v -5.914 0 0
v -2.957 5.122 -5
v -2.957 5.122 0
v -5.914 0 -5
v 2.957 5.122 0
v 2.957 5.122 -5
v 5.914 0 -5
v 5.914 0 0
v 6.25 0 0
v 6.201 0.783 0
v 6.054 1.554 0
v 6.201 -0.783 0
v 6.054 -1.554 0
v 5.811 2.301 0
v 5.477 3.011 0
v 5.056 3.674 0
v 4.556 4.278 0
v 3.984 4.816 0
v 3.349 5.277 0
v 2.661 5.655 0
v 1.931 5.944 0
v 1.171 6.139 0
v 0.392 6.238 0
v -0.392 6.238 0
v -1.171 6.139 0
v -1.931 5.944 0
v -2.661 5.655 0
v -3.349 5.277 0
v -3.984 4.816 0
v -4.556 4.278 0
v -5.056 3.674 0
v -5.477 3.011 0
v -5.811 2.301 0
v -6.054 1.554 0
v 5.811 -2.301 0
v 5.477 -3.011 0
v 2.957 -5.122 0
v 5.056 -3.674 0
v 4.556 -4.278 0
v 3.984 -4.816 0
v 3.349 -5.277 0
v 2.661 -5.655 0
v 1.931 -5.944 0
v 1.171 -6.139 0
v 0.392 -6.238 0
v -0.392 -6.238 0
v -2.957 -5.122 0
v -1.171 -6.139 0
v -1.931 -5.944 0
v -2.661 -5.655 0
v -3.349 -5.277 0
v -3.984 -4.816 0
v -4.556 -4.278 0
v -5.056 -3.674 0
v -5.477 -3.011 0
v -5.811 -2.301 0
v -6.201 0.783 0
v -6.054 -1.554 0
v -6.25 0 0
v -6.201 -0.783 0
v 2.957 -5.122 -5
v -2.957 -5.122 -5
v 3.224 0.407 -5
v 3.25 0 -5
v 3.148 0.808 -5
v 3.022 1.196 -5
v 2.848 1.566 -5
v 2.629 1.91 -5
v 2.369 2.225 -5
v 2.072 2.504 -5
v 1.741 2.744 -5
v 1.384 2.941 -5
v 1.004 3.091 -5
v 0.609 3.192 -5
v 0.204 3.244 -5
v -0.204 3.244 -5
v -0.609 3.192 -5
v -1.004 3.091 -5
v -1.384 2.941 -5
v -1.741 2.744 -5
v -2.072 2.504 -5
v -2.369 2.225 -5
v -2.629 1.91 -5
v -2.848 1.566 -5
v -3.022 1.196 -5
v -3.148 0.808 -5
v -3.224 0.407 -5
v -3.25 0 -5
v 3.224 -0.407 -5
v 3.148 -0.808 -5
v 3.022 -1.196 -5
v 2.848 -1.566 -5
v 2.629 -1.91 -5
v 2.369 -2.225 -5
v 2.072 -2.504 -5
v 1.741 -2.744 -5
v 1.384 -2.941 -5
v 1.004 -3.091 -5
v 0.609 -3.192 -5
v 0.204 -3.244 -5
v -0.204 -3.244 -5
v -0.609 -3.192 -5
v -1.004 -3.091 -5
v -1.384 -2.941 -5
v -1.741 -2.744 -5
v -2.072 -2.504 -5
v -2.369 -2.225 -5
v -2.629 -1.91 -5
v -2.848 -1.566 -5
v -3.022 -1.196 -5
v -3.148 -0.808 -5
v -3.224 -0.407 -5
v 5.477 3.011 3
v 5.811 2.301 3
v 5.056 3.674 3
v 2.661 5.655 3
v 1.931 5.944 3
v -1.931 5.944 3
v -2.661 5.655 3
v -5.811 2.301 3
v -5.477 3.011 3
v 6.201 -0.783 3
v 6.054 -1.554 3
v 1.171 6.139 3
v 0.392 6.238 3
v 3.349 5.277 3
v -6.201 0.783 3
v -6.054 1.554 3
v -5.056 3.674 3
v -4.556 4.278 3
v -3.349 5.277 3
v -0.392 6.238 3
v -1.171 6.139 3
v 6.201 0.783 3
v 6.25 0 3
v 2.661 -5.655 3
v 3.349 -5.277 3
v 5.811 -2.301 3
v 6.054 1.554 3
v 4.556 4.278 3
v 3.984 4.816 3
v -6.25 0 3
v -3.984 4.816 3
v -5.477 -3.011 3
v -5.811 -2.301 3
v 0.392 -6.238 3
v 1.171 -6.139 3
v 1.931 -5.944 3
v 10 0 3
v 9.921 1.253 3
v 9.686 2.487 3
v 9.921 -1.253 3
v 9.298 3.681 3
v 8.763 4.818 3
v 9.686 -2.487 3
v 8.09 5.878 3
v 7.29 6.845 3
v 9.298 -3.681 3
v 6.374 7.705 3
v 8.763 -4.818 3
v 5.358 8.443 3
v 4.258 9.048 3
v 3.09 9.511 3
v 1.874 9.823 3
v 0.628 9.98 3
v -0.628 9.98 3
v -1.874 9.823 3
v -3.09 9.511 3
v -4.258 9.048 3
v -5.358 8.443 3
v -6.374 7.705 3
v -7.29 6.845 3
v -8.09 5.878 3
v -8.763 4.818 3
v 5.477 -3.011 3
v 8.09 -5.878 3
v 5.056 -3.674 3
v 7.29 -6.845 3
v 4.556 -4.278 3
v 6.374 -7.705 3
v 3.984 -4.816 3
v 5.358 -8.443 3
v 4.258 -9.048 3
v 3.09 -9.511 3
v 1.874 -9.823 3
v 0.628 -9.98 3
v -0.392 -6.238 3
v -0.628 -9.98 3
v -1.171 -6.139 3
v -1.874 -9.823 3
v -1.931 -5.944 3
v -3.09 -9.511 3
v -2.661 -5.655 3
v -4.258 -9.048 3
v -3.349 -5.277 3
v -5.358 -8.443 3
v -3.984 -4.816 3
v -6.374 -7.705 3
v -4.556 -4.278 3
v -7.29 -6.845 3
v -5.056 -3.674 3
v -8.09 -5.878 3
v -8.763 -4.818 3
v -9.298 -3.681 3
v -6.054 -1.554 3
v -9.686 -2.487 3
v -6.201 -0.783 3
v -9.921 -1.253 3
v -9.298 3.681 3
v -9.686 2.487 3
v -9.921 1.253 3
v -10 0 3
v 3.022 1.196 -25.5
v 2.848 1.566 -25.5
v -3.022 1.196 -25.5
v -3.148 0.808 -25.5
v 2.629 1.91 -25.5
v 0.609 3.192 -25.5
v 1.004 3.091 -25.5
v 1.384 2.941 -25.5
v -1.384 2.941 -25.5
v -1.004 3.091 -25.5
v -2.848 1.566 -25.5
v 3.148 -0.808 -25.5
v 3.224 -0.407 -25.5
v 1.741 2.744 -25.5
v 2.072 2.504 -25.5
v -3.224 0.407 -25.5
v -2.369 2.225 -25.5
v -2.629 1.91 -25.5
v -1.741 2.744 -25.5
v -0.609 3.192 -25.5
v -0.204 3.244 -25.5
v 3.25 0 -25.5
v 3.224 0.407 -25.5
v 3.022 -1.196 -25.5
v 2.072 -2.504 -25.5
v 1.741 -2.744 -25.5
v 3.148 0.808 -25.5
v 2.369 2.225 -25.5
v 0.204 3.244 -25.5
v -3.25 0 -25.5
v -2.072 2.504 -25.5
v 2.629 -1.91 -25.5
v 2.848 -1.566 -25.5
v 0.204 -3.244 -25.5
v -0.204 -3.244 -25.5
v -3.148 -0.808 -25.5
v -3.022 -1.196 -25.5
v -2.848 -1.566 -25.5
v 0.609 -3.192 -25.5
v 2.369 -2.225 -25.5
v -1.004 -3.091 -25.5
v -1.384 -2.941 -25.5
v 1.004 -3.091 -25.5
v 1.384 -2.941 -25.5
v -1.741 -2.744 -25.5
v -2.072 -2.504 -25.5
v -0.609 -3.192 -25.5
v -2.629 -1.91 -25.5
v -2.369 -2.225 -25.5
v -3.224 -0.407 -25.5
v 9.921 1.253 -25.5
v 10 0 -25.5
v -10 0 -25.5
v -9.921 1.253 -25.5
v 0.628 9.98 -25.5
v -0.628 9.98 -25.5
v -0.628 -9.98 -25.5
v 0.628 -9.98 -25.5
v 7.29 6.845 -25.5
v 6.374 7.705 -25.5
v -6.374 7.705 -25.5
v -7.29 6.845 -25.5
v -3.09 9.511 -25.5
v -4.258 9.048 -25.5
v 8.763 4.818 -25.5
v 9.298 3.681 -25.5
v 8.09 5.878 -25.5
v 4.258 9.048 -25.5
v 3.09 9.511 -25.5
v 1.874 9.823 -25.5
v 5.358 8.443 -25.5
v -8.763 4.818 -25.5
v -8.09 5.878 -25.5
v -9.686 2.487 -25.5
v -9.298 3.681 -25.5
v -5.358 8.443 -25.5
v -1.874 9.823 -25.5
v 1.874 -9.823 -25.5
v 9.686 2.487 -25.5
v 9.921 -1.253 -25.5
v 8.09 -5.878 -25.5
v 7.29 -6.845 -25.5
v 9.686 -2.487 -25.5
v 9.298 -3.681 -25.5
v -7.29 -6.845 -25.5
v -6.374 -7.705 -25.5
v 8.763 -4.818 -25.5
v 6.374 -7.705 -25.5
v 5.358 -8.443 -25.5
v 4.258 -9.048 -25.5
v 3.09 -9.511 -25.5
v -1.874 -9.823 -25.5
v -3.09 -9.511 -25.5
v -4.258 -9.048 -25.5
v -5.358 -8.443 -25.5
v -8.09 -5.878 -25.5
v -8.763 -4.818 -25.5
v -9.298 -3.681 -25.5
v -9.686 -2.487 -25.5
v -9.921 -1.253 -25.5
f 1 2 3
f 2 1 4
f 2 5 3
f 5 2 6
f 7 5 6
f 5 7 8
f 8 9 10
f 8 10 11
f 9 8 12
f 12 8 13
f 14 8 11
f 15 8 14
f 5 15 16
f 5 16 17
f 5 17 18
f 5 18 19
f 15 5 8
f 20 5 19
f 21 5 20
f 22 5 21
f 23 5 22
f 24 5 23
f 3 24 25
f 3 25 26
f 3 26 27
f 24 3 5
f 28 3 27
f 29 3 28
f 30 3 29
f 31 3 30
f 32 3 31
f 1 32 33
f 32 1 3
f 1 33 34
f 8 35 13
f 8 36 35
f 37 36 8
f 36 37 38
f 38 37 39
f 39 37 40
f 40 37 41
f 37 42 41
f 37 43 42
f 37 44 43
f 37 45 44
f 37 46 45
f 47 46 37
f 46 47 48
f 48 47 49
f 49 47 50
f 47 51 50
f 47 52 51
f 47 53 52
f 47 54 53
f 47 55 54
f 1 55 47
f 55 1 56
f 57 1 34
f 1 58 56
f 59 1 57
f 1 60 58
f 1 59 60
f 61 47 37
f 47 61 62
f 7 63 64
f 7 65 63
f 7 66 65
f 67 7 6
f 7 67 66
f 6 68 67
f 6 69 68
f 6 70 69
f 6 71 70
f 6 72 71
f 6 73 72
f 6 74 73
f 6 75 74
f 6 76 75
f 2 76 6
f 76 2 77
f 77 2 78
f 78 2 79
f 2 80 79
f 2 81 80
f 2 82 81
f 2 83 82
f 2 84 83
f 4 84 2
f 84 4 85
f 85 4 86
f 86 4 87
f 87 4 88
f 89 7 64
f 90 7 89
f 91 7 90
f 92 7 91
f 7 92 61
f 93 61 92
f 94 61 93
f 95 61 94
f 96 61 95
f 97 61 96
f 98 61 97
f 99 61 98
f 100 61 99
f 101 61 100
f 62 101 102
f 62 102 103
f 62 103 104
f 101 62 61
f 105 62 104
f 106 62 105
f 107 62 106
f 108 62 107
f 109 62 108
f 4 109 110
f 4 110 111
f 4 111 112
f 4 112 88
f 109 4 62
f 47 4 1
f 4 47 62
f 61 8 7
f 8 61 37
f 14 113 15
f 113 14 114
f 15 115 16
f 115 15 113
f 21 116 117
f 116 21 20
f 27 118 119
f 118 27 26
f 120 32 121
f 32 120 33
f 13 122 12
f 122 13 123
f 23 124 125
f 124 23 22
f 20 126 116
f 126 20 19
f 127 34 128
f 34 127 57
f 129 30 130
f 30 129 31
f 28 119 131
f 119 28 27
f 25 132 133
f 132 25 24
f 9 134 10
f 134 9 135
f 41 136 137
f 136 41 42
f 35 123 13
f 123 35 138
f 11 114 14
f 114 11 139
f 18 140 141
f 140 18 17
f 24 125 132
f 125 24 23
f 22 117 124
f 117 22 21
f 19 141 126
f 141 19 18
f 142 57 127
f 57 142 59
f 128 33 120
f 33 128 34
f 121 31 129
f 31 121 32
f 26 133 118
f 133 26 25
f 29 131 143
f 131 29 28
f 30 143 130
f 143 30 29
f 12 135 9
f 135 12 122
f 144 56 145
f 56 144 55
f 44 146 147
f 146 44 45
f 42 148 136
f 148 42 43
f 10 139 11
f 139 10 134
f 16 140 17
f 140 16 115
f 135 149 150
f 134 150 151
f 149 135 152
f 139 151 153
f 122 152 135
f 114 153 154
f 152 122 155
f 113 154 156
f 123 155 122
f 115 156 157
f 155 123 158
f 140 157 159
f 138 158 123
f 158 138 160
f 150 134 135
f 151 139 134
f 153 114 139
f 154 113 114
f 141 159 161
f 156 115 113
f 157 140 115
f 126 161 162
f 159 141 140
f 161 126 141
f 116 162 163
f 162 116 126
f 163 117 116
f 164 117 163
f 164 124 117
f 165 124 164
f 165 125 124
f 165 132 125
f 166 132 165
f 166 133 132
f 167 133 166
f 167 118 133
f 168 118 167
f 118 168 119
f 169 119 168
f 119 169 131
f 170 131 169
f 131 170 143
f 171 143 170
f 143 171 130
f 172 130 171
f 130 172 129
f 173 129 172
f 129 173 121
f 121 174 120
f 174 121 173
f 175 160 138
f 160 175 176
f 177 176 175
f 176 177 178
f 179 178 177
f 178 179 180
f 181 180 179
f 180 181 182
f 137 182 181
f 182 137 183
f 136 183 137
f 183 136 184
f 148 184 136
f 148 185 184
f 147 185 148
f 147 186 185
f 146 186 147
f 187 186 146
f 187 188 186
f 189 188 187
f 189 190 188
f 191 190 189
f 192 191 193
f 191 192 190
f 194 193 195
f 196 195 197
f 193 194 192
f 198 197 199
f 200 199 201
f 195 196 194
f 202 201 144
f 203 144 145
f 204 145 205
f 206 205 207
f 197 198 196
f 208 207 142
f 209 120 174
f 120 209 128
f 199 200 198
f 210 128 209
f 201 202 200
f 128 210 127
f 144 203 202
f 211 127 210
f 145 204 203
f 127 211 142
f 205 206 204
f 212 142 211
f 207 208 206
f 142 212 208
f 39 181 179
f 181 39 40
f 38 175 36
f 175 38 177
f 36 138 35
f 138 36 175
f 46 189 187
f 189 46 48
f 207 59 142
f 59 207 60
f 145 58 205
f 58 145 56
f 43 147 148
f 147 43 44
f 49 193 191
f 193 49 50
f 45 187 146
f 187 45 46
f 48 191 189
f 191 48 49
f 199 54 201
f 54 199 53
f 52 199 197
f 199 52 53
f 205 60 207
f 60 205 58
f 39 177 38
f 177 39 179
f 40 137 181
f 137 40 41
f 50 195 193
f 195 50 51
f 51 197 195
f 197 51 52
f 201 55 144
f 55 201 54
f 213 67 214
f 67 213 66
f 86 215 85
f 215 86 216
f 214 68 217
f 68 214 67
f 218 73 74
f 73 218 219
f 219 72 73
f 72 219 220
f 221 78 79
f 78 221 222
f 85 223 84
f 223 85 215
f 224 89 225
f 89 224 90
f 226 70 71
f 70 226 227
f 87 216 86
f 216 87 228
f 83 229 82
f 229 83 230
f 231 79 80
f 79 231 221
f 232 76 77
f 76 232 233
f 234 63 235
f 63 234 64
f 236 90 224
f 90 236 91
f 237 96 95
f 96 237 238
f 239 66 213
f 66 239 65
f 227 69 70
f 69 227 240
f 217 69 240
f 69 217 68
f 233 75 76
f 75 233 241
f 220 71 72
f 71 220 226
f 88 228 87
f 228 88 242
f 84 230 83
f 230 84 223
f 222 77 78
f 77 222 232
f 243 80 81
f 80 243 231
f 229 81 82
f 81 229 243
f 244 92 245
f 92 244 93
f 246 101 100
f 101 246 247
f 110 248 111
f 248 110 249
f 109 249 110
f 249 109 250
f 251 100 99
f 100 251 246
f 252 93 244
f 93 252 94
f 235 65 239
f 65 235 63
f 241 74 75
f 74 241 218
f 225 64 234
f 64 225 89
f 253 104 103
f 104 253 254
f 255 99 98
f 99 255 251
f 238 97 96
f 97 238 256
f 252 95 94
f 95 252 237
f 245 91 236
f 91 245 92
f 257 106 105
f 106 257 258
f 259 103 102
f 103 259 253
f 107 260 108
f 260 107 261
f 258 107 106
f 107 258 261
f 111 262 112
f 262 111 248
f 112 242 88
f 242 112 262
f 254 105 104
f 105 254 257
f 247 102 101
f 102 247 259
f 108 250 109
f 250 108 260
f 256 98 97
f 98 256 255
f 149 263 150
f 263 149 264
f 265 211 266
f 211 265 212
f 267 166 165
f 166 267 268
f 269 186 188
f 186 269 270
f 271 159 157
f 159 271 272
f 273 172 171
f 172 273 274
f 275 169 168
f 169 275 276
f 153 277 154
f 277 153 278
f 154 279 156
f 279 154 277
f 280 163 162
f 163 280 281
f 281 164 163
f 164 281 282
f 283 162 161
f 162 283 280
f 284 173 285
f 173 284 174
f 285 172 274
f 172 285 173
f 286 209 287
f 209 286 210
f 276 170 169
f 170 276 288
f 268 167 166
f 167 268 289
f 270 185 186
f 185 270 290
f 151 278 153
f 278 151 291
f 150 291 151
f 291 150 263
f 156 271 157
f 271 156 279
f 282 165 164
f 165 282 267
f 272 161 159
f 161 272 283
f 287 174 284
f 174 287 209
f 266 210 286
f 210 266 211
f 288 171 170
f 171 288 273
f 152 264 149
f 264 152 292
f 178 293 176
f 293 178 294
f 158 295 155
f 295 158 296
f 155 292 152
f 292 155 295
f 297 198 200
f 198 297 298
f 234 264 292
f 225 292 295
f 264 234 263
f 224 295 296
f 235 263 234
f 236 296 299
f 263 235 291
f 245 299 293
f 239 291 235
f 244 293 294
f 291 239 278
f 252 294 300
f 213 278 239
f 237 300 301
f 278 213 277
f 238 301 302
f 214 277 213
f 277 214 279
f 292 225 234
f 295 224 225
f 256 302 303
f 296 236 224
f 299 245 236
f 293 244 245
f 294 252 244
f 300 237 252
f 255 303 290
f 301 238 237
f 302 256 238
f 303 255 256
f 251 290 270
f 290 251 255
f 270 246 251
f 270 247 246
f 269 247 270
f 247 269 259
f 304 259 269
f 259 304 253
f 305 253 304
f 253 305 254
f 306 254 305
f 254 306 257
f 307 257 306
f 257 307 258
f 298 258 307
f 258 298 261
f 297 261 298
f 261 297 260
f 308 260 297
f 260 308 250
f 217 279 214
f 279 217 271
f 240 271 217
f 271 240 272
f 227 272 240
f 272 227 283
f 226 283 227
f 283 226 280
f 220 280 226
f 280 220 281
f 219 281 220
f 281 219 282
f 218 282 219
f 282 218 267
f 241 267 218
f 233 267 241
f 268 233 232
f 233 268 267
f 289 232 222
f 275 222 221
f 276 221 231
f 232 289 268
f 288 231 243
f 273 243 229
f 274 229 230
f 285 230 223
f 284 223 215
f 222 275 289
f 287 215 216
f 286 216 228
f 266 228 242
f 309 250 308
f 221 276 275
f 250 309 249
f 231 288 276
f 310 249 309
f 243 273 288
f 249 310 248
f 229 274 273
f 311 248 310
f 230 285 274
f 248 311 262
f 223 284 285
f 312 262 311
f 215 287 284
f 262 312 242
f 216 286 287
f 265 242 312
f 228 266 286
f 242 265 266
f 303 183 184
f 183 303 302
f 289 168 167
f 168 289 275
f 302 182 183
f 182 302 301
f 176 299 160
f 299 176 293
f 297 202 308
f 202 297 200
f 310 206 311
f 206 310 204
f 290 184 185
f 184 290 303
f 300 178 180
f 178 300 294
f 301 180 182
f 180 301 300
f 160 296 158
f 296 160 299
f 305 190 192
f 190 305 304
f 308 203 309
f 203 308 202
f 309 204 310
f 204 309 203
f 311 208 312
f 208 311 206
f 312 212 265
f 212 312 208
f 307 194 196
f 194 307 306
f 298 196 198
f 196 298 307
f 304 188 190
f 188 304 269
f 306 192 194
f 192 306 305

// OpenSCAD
$fn = 50;


difference() {
	union() {
		translate(v = [0, 0, -25.5000000000]) {
			cylinder(h = 28.5000000000, r = 10.0000000000);
		}
	}
	union() {
		translate(v = [0, 0, 0]) {
			rotate(a = [0, 0, 0]) {
				difference() {
					union() {
						translate(v = [0, 0, -5]) {
							linear_extrude(height = 5) {
								polygon(points = [[5.9142500000, 0.0000000000], [2.9571250000, 5.1218907443], [-2.9571250000, 5.1218907443], [-5.9142500000, 0.0000000000], [-2.9571250000, -5.1218907443], [2.9571250000, -5.1218907443]]);
							}
						}
					}
					union();
				}
			}
		}
		#cylinder(h = 3, r = 6.2500000000);
		#translate(v = [0, 0, -100.0000000000]) {
			cylinder(h = 200, r = 3.2500000000);
		}
	}
}
